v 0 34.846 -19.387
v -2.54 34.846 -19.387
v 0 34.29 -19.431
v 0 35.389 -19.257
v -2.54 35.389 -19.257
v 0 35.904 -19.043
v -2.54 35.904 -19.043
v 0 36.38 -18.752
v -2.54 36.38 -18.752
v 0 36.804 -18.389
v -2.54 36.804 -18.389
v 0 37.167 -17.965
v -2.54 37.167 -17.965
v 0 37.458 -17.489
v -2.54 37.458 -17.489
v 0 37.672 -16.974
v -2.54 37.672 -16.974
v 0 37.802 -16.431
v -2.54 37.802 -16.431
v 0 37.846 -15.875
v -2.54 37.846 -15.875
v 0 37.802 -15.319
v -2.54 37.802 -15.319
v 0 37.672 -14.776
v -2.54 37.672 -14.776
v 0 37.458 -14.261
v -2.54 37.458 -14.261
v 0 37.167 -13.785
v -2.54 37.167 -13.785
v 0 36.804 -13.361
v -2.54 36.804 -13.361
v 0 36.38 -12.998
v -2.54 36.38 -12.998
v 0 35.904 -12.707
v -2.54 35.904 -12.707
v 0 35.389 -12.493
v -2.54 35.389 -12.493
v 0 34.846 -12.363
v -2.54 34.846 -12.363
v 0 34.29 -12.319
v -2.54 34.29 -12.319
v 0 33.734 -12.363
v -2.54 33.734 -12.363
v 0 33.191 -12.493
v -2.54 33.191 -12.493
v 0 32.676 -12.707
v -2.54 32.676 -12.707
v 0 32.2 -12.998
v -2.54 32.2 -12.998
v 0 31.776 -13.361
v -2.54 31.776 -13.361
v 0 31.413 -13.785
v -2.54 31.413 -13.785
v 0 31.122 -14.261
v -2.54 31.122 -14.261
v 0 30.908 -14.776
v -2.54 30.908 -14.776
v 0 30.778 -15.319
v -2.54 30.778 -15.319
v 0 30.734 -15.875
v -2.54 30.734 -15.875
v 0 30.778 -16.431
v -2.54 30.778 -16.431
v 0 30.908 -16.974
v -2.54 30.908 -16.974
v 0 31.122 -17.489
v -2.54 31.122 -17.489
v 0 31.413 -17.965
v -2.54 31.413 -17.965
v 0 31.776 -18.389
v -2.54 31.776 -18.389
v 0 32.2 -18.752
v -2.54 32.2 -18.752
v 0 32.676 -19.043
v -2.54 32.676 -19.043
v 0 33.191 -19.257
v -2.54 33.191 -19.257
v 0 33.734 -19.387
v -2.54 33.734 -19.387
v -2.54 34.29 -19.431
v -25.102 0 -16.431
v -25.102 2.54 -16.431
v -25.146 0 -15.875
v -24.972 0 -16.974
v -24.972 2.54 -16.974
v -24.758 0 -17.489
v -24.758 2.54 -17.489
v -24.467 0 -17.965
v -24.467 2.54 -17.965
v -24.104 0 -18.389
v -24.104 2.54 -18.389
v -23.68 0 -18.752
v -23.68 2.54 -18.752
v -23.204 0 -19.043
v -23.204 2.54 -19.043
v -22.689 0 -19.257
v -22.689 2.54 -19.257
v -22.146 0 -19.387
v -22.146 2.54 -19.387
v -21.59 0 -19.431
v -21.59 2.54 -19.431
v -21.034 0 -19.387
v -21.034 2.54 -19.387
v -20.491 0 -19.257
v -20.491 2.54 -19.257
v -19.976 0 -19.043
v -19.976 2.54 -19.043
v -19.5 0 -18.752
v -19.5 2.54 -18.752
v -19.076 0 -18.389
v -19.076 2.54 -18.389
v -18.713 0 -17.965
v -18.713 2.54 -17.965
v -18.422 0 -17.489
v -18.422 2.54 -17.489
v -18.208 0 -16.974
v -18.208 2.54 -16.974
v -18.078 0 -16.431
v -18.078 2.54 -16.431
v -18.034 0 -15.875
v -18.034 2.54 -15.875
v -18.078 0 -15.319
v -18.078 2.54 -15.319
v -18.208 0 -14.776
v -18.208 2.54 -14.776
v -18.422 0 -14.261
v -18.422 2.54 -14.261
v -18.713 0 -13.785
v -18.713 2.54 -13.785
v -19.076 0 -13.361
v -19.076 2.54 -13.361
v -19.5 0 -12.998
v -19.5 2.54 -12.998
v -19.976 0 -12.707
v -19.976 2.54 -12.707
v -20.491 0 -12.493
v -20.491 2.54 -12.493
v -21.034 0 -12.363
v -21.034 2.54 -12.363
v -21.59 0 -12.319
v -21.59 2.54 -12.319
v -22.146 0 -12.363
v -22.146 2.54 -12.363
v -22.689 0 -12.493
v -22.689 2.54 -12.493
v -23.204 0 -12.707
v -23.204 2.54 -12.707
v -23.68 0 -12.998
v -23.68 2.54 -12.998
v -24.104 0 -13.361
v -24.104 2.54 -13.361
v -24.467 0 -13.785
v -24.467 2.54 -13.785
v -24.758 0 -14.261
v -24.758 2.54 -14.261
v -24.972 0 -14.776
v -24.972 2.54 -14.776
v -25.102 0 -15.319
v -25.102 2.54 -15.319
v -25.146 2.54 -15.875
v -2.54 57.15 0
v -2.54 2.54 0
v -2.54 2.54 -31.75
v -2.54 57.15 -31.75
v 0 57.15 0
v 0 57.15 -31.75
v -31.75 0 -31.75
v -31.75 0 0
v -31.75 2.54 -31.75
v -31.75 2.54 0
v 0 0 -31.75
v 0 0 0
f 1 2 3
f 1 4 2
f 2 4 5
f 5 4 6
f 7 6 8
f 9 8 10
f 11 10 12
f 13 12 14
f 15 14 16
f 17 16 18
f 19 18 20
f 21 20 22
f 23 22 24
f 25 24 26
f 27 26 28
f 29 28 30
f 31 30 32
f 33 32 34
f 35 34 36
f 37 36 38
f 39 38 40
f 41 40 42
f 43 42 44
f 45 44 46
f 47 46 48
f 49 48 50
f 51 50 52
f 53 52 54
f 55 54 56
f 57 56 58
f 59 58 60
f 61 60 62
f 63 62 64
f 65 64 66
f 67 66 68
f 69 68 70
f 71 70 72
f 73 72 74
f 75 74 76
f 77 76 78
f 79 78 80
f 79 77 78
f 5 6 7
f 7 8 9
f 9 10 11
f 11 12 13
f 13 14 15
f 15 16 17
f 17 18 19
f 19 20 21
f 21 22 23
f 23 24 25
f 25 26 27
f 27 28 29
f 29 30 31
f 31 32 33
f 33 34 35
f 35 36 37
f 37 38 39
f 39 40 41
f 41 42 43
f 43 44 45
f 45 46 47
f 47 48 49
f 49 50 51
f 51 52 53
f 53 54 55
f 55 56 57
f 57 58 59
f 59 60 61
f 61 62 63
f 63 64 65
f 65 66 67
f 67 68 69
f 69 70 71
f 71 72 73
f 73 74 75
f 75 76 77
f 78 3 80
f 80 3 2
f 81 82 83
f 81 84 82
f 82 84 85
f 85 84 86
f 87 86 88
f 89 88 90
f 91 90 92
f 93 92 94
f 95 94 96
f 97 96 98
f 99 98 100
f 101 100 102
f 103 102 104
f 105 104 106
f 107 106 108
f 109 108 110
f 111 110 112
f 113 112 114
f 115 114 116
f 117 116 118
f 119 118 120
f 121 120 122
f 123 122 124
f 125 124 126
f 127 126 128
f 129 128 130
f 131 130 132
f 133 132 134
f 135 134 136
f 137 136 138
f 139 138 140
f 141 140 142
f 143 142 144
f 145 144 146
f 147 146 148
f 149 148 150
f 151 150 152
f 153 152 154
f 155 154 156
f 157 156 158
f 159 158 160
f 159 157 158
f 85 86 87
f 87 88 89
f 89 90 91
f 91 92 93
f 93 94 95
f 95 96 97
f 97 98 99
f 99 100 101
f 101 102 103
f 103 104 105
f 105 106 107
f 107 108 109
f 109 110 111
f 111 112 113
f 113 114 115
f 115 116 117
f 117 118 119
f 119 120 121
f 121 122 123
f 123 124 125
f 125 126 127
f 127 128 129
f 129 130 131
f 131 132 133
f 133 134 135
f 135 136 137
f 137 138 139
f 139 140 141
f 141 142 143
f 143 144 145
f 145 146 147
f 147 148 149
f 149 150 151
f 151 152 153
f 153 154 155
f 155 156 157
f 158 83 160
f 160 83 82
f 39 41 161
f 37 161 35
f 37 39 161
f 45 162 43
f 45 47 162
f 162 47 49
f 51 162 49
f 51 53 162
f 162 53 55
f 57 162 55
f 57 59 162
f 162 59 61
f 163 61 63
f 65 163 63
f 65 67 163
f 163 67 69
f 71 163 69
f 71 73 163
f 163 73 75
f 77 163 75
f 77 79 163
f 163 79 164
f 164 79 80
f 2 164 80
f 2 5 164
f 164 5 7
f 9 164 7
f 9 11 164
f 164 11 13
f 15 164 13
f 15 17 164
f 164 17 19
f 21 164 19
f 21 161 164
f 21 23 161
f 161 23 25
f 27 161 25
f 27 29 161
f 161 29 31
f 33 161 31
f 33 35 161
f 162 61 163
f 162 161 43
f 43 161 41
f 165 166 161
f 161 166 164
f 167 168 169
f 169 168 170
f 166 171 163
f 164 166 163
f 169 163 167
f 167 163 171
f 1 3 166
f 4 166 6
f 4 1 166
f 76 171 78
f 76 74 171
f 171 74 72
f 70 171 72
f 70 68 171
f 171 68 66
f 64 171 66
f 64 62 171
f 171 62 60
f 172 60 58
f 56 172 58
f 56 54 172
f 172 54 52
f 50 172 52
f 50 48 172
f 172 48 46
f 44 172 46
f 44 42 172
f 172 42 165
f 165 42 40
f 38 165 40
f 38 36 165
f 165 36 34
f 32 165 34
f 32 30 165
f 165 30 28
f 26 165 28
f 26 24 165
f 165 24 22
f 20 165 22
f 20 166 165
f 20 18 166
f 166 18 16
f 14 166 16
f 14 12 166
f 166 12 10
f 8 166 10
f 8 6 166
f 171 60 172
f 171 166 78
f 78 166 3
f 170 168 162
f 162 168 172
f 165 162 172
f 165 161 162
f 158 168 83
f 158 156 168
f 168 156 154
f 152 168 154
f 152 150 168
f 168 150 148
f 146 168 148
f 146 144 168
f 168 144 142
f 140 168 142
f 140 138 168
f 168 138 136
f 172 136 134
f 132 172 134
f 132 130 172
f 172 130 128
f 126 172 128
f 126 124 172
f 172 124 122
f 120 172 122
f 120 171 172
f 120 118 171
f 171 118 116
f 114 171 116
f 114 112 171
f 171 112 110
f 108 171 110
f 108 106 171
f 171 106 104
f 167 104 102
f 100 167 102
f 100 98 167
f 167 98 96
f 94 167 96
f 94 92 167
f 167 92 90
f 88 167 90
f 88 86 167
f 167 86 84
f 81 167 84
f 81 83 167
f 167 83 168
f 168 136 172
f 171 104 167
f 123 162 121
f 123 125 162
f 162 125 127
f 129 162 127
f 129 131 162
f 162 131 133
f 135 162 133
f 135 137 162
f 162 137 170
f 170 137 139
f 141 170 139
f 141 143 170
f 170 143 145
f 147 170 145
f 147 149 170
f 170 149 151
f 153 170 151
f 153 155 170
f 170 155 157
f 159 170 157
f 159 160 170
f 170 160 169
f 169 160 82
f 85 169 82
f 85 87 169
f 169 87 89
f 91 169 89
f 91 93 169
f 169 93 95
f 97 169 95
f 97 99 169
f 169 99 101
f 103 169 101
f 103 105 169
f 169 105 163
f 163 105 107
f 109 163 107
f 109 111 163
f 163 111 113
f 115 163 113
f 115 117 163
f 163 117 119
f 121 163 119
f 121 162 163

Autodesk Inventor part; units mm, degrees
ref_plane "YZ Plane" through (0, 0, 0) normal (1, 0, 0) x (0, 1, 0)
ref_plane "XZ Plane" through (0, 0, 0) normal (0, 1, 0) x (-1, 0, 0)
ref_plane "XY Plane" through (0, 0, 0) normal (0, 0, 1) x (1, 0, 0)
sketch "Sketch1" plane through (0, 0, 0) normal (0, 1, 0) x (-1, 0, 0)
  line L0 (0, 0) -> (31.75, 0)
  line L1 (31.75, 0) -> (31.75, -31.75)
  line L2 (31.75, -31.75) -> (0, -31.75)
  line L3 (0, -31.75) -> (0, 0)
  dimension "d0" = 31.75
  dimension "d1" = 31.75
extrude "Extrusion1" add sketch "Sketch1" along normal blind 2.54
sketch "Sketch2" plane through (0, 2.54, 0) normal (0, 1, 0) x (1, 0, 0)
  line L0 (0, 31.75) -> (-31.75, 31.75) projected
  line L1 (0, 0) -> (-2.54, 0)
  line L2 (-2.54, 0) -> (-2.54, 31.75)
  line L3 (-2.54, 31.75) -> (0, 31.75)
  line L4 (0, 31.75) -> (0, 0)
  dimension "d4" = 2.54
extrude "Extrusion2" add sketch "Sketch2" along normal blind 54.61
sketch "Sketch3" plane through (0, 2.54, 0) normal (0, 1, 0) x (1, 0, 0)
  line L0 (-2.54, 0) -> (-2.54, 31.75) projected
  line L1 (-2.54, 31.75) -> (-31.75, 31.75) projected
  line L2 (-31.75, 31.75) -> (-31.75, 0) projected
  line L3 (-31.75, 0) -> (-2.54, 0) projected
  point P0 (0, 0)
  point P1 (-21.59, 15.875)
  dimension "d7" = 15.875
  dimension "d8" = 19.05
hole "Hole1" at (-21.59, 2.54, -15.875) direction (0, -1, 0) diameter 7.112 end through all
sketch "Sketch4" plane through (-2.54, 2.54, -31.75) normal (-1, 0, 0) x (0, 0, 1)
  line L0 (31.75, 0) -> (0, 0) projected
  line L1 (31.75, 0) -> (31.75, 54.61) projected
  line L2 (0, 54.61) -> (31.75, 54.61) projected
  line L3 (0, 0) -> (0, 54.61) projected
  point P0 (31.75, -2.54)
  point P1 (15.875, 31.75)
  dimension "d16" = 15.875
  dimension "d17" = 31.75
hole "Hole2" at (-2.54, 34.29, -15.875) direction (1, 0, 0) diameter 7.112 end through all
properties part number "090001-1"
